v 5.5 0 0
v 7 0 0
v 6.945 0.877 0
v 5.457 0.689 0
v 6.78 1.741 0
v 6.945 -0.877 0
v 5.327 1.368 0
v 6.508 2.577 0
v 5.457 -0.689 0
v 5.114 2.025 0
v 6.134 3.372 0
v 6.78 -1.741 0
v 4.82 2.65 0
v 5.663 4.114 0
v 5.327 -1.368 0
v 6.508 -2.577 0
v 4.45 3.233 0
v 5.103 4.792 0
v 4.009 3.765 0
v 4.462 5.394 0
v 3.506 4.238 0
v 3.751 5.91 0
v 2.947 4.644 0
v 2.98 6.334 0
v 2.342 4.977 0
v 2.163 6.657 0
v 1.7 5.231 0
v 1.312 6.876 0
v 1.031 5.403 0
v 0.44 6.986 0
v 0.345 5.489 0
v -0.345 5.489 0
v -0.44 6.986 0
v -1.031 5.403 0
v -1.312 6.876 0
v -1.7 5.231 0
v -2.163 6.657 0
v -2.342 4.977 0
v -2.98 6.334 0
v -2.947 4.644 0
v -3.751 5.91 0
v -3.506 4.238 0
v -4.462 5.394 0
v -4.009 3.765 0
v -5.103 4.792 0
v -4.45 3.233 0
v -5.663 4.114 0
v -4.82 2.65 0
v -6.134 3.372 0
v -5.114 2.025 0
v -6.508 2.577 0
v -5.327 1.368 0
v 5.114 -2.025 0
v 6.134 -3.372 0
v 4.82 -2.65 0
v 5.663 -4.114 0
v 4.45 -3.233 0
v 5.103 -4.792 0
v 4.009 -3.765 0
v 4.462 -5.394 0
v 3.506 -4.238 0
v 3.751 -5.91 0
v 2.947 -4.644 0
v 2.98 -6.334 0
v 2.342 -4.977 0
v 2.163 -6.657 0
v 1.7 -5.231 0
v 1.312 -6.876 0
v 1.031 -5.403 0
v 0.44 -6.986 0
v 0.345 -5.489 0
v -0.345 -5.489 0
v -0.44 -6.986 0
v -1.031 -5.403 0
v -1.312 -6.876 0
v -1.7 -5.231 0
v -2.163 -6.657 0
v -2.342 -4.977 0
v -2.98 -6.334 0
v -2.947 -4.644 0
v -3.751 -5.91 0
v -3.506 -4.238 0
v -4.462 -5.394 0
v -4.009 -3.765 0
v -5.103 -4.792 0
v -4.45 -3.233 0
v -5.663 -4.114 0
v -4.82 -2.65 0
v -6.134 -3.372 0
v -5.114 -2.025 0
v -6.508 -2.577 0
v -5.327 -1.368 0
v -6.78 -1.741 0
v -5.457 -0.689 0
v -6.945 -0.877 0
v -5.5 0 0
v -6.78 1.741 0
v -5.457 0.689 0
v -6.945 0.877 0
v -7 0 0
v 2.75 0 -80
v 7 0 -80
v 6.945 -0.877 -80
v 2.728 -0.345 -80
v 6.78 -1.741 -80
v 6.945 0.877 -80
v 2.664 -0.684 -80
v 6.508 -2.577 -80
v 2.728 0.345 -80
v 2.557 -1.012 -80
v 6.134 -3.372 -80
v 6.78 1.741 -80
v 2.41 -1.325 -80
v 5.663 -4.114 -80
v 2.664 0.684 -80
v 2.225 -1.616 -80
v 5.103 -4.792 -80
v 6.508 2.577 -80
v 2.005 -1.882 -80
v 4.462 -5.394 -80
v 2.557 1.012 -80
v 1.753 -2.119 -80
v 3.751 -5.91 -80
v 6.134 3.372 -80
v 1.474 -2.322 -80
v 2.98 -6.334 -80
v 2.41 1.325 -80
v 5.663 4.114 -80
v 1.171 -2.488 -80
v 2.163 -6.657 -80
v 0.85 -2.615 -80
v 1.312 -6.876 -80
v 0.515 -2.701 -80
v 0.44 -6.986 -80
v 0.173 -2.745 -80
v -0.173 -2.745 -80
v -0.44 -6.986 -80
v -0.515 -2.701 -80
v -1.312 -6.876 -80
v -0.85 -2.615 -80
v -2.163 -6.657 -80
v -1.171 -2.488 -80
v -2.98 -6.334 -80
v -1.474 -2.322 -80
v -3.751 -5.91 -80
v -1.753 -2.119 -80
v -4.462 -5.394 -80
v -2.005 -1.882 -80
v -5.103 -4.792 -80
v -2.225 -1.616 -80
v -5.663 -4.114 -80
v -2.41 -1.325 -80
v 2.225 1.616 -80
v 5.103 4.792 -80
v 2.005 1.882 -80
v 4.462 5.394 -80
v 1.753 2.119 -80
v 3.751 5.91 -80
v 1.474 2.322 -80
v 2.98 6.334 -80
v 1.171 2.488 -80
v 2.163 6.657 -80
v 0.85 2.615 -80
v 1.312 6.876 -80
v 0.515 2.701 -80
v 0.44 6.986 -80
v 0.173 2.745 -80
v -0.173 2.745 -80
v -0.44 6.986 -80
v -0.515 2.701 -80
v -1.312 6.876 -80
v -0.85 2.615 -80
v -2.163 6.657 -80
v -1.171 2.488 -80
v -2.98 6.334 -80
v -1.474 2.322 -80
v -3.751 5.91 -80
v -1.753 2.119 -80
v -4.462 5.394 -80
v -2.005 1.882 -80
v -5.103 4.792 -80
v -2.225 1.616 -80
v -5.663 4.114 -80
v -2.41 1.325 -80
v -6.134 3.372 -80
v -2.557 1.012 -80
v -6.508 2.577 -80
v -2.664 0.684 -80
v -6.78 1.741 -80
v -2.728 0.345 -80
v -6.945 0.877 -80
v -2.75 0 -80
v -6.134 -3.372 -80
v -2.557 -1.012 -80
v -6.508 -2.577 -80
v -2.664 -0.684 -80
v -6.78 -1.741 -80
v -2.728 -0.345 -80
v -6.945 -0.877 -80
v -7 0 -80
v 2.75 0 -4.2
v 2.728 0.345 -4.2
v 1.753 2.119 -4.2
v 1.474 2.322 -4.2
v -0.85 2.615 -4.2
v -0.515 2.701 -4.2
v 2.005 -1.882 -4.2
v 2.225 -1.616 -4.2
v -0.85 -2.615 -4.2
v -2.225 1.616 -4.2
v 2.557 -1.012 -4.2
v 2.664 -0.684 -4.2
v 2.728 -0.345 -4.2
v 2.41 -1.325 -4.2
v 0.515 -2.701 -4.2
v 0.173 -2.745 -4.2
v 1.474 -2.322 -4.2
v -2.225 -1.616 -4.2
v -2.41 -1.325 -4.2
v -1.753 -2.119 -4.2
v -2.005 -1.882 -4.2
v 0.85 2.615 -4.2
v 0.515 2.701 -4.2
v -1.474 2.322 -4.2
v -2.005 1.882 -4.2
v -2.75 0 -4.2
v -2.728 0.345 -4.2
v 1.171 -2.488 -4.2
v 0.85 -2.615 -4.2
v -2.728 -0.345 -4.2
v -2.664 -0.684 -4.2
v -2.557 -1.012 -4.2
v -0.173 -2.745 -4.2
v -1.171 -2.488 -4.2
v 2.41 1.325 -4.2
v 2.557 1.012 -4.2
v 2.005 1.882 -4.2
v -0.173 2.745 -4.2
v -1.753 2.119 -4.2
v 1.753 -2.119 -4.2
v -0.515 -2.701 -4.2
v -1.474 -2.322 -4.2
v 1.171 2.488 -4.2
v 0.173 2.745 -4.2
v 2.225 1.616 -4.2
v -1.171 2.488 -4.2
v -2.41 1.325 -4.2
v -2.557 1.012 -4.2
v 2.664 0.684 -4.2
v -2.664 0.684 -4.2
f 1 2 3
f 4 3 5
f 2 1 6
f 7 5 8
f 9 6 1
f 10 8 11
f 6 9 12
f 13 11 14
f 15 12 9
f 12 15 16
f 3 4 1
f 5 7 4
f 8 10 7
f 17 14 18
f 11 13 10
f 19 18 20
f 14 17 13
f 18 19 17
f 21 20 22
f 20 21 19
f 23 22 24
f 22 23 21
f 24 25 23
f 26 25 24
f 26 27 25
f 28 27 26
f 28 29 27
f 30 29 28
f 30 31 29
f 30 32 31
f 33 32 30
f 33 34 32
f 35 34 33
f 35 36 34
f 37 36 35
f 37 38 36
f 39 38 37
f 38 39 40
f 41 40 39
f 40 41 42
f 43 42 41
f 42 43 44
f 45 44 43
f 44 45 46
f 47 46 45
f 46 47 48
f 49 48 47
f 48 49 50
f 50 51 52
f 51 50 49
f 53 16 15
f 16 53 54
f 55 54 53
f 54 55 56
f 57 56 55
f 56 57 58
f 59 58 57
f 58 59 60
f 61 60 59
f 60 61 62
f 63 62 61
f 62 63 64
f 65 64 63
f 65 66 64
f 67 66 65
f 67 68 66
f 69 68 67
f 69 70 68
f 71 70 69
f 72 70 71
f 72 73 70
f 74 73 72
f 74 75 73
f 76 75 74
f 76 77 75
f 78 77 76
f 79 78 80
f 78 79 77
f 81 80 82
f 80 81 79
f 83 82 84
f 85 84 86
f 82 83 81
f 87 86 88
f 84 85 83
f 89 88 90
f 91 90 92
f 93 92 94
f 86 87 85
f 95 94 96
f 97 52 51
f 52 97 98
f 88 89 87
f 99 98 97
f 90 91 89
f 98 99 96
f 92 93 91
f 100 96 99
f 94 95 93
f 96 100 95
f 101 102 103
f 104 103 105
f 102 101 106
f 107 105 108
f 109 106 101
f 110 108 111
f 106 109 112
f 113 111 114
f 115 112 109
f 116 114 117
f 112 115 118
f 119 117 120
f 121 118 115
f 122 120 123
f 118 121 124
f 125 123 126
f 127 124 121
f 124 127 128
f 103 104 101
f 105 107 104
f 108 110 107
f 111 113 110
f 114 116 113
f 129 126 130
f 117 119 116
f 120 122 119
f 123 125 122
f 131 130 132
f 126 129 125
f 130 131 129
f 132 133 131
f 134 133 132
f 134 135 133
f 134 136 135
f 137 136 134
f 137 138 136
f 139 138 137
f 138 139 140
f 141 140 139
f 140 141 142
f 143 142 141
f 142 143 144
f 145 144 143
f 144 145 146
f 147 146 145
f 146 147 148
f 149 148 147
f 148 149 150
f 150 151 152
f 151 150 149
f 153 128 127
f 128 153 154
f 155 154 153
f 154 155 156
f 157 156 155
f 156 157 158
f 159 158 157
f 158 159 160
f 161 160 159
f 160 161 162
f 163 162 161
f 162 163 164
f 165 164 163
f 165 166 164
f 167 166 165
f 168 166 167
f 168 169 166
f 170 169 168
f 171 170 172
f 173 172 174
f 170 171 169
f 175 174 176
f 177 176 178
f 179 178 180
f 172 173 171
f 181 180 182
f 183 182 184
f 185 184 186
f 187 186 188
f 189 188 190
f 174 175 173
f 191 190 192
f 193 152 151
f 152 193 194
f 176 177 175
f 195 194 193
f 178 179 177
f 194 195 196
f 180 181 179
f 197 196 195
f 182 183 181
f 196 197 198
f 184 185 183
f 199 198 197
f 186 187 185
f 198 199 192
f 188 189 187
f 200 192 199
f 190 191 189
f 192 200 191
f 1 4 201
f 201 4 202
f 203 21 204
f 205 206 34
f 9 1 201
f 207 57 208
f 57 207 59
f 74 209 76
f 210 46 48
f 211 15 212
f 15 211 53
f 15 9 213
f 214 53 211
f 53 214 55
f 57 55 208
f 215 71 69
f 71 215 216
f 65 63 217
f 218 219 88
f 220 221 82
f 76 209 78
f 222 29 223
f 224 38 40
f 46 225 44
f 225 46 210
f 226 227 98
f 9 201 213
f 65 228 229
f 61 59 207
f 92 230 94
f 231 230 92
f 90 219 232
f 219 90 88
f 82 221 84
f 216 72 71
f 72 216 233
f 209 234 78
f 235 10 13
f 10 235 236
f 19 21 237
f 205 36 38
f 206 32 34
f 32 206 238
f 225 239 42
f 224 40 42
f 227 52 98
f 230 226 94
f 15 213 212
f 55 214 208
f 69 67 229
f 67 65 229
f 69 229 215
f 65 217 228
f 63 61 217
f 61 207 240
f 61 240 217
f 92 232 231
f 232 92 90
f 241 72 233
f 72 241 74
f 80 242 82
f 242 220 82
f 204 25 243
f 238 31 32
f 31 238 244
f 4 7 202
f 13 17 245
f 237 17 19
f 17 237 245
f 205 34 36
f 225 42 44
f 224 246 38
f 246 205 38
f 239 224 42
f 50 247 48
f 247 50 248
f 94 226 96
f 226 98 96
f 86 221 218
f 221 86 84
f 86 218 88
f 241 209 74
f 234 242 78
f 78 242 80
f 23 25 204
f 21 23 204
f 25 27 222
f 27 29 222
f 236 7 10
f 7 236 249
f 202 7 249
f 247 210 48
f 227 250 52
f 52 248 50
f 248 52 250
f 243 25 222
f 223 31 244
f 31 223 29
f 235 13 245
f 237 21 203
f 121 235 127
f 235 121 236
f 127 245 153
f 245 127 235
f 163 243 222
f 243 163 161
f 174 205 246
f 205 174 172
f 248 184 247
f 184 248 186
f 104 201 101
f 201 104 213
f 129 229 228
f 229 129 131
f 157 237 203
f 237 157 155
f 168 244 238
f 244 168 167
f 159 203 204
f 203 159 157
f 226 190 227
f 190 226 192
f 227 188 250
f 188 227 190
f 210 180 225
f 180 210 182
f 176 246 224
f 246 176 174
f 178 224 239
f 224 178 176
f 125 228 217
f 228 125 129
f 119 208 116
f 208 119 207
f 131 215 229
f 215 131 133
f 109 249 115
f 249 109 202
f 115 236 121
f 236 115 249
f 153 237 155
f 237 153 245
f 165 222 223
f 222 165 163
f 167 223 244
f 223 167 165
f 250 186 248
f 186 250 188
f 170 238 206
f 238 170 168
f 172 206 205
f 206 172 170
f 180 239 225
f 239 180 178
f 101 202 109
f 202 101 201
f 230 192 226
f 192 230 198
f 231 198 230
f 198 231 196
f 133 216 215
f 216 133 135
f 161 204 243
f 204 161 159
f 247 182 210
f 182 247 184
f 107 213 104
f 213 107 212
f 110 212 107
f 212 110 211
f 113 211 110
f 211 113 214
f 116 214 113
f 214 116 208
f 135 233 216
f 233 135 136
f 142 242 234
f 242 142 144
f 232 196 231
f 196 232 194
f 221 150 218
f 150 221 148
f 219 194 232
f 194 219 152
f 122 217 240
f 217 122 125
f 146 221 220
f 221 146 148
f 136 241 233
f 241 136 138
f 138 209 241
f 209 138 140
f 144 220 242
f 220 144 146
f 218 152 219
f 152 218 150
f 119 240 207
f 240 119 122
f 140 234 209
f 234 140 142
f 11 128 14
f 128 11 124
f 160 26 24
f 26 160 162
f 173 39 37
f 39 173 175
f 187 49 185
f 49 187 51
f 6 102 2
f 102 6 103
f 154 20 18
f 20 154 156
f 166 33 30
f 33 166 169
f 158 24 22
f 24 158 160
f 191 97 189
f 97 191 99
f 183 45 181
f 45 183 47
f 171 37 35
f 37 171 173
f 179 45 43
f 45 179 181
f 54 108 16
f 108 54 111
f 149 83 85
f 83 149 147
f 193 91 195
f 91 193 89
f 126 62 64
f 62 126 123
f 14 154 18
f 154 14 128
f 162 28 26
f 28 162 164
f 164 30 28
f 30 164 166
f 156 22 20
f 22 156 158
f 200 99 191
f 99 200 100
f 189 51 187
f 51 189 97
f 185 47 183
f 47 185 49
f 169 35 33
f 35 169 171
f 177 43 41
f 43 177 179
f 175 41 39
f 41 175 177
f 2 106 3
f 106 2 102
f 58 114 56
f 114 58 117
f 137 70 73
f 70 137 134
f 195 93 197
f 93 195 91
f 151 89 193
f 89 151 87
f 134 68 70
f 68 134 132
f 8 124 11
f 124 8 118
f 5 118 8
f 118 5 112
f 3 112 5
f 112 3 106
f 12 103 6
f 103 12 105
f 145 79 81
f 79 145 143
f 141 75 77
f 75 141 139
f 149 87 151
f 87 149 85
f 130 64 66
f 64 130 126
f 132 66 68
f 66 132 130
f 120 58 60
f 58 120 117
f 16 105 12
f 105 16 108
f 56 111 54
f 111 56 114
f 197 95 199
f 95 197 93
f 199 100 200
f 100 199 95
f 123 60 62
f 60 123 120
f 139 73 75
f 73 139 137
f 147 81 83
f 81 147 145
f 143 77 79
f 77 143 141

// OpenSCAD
$fn = 50;


difference() {
	union() {
		translate(v = [0, 0, -80.0000000000]) {
			cylinder(h = 80, r = 7.0000000000);
		}
		cylinder(h = 0, r = 13.0000000000);
	}
	union() {
		translate(v = [0, 0, 0]) {
			rotate(a = [0, 0, 0]) {
				difference() {
					union() {
						#translate(v = [0, 0, -80.0000000000]) {
							cylinder(h = 80, r = 2.2500000000);
						}
						#translate(v = [0, 0, -4.2000000000]) {
							cylinder(h = 4.2000000000, r1 = 2.7500000000, r2 = 5.5000000000);
						}
						#translate(v = [0, 0, -80.0000000000]) {
							cylinder(h = 80, r = 2.7500000000);
						}
						#translate(v = [0, 0, -80.0000000000]) {
							cylinder(h = 80, r = 2.2500000000);
						}
					}
					union();
				}
			}
		}
	}
}
